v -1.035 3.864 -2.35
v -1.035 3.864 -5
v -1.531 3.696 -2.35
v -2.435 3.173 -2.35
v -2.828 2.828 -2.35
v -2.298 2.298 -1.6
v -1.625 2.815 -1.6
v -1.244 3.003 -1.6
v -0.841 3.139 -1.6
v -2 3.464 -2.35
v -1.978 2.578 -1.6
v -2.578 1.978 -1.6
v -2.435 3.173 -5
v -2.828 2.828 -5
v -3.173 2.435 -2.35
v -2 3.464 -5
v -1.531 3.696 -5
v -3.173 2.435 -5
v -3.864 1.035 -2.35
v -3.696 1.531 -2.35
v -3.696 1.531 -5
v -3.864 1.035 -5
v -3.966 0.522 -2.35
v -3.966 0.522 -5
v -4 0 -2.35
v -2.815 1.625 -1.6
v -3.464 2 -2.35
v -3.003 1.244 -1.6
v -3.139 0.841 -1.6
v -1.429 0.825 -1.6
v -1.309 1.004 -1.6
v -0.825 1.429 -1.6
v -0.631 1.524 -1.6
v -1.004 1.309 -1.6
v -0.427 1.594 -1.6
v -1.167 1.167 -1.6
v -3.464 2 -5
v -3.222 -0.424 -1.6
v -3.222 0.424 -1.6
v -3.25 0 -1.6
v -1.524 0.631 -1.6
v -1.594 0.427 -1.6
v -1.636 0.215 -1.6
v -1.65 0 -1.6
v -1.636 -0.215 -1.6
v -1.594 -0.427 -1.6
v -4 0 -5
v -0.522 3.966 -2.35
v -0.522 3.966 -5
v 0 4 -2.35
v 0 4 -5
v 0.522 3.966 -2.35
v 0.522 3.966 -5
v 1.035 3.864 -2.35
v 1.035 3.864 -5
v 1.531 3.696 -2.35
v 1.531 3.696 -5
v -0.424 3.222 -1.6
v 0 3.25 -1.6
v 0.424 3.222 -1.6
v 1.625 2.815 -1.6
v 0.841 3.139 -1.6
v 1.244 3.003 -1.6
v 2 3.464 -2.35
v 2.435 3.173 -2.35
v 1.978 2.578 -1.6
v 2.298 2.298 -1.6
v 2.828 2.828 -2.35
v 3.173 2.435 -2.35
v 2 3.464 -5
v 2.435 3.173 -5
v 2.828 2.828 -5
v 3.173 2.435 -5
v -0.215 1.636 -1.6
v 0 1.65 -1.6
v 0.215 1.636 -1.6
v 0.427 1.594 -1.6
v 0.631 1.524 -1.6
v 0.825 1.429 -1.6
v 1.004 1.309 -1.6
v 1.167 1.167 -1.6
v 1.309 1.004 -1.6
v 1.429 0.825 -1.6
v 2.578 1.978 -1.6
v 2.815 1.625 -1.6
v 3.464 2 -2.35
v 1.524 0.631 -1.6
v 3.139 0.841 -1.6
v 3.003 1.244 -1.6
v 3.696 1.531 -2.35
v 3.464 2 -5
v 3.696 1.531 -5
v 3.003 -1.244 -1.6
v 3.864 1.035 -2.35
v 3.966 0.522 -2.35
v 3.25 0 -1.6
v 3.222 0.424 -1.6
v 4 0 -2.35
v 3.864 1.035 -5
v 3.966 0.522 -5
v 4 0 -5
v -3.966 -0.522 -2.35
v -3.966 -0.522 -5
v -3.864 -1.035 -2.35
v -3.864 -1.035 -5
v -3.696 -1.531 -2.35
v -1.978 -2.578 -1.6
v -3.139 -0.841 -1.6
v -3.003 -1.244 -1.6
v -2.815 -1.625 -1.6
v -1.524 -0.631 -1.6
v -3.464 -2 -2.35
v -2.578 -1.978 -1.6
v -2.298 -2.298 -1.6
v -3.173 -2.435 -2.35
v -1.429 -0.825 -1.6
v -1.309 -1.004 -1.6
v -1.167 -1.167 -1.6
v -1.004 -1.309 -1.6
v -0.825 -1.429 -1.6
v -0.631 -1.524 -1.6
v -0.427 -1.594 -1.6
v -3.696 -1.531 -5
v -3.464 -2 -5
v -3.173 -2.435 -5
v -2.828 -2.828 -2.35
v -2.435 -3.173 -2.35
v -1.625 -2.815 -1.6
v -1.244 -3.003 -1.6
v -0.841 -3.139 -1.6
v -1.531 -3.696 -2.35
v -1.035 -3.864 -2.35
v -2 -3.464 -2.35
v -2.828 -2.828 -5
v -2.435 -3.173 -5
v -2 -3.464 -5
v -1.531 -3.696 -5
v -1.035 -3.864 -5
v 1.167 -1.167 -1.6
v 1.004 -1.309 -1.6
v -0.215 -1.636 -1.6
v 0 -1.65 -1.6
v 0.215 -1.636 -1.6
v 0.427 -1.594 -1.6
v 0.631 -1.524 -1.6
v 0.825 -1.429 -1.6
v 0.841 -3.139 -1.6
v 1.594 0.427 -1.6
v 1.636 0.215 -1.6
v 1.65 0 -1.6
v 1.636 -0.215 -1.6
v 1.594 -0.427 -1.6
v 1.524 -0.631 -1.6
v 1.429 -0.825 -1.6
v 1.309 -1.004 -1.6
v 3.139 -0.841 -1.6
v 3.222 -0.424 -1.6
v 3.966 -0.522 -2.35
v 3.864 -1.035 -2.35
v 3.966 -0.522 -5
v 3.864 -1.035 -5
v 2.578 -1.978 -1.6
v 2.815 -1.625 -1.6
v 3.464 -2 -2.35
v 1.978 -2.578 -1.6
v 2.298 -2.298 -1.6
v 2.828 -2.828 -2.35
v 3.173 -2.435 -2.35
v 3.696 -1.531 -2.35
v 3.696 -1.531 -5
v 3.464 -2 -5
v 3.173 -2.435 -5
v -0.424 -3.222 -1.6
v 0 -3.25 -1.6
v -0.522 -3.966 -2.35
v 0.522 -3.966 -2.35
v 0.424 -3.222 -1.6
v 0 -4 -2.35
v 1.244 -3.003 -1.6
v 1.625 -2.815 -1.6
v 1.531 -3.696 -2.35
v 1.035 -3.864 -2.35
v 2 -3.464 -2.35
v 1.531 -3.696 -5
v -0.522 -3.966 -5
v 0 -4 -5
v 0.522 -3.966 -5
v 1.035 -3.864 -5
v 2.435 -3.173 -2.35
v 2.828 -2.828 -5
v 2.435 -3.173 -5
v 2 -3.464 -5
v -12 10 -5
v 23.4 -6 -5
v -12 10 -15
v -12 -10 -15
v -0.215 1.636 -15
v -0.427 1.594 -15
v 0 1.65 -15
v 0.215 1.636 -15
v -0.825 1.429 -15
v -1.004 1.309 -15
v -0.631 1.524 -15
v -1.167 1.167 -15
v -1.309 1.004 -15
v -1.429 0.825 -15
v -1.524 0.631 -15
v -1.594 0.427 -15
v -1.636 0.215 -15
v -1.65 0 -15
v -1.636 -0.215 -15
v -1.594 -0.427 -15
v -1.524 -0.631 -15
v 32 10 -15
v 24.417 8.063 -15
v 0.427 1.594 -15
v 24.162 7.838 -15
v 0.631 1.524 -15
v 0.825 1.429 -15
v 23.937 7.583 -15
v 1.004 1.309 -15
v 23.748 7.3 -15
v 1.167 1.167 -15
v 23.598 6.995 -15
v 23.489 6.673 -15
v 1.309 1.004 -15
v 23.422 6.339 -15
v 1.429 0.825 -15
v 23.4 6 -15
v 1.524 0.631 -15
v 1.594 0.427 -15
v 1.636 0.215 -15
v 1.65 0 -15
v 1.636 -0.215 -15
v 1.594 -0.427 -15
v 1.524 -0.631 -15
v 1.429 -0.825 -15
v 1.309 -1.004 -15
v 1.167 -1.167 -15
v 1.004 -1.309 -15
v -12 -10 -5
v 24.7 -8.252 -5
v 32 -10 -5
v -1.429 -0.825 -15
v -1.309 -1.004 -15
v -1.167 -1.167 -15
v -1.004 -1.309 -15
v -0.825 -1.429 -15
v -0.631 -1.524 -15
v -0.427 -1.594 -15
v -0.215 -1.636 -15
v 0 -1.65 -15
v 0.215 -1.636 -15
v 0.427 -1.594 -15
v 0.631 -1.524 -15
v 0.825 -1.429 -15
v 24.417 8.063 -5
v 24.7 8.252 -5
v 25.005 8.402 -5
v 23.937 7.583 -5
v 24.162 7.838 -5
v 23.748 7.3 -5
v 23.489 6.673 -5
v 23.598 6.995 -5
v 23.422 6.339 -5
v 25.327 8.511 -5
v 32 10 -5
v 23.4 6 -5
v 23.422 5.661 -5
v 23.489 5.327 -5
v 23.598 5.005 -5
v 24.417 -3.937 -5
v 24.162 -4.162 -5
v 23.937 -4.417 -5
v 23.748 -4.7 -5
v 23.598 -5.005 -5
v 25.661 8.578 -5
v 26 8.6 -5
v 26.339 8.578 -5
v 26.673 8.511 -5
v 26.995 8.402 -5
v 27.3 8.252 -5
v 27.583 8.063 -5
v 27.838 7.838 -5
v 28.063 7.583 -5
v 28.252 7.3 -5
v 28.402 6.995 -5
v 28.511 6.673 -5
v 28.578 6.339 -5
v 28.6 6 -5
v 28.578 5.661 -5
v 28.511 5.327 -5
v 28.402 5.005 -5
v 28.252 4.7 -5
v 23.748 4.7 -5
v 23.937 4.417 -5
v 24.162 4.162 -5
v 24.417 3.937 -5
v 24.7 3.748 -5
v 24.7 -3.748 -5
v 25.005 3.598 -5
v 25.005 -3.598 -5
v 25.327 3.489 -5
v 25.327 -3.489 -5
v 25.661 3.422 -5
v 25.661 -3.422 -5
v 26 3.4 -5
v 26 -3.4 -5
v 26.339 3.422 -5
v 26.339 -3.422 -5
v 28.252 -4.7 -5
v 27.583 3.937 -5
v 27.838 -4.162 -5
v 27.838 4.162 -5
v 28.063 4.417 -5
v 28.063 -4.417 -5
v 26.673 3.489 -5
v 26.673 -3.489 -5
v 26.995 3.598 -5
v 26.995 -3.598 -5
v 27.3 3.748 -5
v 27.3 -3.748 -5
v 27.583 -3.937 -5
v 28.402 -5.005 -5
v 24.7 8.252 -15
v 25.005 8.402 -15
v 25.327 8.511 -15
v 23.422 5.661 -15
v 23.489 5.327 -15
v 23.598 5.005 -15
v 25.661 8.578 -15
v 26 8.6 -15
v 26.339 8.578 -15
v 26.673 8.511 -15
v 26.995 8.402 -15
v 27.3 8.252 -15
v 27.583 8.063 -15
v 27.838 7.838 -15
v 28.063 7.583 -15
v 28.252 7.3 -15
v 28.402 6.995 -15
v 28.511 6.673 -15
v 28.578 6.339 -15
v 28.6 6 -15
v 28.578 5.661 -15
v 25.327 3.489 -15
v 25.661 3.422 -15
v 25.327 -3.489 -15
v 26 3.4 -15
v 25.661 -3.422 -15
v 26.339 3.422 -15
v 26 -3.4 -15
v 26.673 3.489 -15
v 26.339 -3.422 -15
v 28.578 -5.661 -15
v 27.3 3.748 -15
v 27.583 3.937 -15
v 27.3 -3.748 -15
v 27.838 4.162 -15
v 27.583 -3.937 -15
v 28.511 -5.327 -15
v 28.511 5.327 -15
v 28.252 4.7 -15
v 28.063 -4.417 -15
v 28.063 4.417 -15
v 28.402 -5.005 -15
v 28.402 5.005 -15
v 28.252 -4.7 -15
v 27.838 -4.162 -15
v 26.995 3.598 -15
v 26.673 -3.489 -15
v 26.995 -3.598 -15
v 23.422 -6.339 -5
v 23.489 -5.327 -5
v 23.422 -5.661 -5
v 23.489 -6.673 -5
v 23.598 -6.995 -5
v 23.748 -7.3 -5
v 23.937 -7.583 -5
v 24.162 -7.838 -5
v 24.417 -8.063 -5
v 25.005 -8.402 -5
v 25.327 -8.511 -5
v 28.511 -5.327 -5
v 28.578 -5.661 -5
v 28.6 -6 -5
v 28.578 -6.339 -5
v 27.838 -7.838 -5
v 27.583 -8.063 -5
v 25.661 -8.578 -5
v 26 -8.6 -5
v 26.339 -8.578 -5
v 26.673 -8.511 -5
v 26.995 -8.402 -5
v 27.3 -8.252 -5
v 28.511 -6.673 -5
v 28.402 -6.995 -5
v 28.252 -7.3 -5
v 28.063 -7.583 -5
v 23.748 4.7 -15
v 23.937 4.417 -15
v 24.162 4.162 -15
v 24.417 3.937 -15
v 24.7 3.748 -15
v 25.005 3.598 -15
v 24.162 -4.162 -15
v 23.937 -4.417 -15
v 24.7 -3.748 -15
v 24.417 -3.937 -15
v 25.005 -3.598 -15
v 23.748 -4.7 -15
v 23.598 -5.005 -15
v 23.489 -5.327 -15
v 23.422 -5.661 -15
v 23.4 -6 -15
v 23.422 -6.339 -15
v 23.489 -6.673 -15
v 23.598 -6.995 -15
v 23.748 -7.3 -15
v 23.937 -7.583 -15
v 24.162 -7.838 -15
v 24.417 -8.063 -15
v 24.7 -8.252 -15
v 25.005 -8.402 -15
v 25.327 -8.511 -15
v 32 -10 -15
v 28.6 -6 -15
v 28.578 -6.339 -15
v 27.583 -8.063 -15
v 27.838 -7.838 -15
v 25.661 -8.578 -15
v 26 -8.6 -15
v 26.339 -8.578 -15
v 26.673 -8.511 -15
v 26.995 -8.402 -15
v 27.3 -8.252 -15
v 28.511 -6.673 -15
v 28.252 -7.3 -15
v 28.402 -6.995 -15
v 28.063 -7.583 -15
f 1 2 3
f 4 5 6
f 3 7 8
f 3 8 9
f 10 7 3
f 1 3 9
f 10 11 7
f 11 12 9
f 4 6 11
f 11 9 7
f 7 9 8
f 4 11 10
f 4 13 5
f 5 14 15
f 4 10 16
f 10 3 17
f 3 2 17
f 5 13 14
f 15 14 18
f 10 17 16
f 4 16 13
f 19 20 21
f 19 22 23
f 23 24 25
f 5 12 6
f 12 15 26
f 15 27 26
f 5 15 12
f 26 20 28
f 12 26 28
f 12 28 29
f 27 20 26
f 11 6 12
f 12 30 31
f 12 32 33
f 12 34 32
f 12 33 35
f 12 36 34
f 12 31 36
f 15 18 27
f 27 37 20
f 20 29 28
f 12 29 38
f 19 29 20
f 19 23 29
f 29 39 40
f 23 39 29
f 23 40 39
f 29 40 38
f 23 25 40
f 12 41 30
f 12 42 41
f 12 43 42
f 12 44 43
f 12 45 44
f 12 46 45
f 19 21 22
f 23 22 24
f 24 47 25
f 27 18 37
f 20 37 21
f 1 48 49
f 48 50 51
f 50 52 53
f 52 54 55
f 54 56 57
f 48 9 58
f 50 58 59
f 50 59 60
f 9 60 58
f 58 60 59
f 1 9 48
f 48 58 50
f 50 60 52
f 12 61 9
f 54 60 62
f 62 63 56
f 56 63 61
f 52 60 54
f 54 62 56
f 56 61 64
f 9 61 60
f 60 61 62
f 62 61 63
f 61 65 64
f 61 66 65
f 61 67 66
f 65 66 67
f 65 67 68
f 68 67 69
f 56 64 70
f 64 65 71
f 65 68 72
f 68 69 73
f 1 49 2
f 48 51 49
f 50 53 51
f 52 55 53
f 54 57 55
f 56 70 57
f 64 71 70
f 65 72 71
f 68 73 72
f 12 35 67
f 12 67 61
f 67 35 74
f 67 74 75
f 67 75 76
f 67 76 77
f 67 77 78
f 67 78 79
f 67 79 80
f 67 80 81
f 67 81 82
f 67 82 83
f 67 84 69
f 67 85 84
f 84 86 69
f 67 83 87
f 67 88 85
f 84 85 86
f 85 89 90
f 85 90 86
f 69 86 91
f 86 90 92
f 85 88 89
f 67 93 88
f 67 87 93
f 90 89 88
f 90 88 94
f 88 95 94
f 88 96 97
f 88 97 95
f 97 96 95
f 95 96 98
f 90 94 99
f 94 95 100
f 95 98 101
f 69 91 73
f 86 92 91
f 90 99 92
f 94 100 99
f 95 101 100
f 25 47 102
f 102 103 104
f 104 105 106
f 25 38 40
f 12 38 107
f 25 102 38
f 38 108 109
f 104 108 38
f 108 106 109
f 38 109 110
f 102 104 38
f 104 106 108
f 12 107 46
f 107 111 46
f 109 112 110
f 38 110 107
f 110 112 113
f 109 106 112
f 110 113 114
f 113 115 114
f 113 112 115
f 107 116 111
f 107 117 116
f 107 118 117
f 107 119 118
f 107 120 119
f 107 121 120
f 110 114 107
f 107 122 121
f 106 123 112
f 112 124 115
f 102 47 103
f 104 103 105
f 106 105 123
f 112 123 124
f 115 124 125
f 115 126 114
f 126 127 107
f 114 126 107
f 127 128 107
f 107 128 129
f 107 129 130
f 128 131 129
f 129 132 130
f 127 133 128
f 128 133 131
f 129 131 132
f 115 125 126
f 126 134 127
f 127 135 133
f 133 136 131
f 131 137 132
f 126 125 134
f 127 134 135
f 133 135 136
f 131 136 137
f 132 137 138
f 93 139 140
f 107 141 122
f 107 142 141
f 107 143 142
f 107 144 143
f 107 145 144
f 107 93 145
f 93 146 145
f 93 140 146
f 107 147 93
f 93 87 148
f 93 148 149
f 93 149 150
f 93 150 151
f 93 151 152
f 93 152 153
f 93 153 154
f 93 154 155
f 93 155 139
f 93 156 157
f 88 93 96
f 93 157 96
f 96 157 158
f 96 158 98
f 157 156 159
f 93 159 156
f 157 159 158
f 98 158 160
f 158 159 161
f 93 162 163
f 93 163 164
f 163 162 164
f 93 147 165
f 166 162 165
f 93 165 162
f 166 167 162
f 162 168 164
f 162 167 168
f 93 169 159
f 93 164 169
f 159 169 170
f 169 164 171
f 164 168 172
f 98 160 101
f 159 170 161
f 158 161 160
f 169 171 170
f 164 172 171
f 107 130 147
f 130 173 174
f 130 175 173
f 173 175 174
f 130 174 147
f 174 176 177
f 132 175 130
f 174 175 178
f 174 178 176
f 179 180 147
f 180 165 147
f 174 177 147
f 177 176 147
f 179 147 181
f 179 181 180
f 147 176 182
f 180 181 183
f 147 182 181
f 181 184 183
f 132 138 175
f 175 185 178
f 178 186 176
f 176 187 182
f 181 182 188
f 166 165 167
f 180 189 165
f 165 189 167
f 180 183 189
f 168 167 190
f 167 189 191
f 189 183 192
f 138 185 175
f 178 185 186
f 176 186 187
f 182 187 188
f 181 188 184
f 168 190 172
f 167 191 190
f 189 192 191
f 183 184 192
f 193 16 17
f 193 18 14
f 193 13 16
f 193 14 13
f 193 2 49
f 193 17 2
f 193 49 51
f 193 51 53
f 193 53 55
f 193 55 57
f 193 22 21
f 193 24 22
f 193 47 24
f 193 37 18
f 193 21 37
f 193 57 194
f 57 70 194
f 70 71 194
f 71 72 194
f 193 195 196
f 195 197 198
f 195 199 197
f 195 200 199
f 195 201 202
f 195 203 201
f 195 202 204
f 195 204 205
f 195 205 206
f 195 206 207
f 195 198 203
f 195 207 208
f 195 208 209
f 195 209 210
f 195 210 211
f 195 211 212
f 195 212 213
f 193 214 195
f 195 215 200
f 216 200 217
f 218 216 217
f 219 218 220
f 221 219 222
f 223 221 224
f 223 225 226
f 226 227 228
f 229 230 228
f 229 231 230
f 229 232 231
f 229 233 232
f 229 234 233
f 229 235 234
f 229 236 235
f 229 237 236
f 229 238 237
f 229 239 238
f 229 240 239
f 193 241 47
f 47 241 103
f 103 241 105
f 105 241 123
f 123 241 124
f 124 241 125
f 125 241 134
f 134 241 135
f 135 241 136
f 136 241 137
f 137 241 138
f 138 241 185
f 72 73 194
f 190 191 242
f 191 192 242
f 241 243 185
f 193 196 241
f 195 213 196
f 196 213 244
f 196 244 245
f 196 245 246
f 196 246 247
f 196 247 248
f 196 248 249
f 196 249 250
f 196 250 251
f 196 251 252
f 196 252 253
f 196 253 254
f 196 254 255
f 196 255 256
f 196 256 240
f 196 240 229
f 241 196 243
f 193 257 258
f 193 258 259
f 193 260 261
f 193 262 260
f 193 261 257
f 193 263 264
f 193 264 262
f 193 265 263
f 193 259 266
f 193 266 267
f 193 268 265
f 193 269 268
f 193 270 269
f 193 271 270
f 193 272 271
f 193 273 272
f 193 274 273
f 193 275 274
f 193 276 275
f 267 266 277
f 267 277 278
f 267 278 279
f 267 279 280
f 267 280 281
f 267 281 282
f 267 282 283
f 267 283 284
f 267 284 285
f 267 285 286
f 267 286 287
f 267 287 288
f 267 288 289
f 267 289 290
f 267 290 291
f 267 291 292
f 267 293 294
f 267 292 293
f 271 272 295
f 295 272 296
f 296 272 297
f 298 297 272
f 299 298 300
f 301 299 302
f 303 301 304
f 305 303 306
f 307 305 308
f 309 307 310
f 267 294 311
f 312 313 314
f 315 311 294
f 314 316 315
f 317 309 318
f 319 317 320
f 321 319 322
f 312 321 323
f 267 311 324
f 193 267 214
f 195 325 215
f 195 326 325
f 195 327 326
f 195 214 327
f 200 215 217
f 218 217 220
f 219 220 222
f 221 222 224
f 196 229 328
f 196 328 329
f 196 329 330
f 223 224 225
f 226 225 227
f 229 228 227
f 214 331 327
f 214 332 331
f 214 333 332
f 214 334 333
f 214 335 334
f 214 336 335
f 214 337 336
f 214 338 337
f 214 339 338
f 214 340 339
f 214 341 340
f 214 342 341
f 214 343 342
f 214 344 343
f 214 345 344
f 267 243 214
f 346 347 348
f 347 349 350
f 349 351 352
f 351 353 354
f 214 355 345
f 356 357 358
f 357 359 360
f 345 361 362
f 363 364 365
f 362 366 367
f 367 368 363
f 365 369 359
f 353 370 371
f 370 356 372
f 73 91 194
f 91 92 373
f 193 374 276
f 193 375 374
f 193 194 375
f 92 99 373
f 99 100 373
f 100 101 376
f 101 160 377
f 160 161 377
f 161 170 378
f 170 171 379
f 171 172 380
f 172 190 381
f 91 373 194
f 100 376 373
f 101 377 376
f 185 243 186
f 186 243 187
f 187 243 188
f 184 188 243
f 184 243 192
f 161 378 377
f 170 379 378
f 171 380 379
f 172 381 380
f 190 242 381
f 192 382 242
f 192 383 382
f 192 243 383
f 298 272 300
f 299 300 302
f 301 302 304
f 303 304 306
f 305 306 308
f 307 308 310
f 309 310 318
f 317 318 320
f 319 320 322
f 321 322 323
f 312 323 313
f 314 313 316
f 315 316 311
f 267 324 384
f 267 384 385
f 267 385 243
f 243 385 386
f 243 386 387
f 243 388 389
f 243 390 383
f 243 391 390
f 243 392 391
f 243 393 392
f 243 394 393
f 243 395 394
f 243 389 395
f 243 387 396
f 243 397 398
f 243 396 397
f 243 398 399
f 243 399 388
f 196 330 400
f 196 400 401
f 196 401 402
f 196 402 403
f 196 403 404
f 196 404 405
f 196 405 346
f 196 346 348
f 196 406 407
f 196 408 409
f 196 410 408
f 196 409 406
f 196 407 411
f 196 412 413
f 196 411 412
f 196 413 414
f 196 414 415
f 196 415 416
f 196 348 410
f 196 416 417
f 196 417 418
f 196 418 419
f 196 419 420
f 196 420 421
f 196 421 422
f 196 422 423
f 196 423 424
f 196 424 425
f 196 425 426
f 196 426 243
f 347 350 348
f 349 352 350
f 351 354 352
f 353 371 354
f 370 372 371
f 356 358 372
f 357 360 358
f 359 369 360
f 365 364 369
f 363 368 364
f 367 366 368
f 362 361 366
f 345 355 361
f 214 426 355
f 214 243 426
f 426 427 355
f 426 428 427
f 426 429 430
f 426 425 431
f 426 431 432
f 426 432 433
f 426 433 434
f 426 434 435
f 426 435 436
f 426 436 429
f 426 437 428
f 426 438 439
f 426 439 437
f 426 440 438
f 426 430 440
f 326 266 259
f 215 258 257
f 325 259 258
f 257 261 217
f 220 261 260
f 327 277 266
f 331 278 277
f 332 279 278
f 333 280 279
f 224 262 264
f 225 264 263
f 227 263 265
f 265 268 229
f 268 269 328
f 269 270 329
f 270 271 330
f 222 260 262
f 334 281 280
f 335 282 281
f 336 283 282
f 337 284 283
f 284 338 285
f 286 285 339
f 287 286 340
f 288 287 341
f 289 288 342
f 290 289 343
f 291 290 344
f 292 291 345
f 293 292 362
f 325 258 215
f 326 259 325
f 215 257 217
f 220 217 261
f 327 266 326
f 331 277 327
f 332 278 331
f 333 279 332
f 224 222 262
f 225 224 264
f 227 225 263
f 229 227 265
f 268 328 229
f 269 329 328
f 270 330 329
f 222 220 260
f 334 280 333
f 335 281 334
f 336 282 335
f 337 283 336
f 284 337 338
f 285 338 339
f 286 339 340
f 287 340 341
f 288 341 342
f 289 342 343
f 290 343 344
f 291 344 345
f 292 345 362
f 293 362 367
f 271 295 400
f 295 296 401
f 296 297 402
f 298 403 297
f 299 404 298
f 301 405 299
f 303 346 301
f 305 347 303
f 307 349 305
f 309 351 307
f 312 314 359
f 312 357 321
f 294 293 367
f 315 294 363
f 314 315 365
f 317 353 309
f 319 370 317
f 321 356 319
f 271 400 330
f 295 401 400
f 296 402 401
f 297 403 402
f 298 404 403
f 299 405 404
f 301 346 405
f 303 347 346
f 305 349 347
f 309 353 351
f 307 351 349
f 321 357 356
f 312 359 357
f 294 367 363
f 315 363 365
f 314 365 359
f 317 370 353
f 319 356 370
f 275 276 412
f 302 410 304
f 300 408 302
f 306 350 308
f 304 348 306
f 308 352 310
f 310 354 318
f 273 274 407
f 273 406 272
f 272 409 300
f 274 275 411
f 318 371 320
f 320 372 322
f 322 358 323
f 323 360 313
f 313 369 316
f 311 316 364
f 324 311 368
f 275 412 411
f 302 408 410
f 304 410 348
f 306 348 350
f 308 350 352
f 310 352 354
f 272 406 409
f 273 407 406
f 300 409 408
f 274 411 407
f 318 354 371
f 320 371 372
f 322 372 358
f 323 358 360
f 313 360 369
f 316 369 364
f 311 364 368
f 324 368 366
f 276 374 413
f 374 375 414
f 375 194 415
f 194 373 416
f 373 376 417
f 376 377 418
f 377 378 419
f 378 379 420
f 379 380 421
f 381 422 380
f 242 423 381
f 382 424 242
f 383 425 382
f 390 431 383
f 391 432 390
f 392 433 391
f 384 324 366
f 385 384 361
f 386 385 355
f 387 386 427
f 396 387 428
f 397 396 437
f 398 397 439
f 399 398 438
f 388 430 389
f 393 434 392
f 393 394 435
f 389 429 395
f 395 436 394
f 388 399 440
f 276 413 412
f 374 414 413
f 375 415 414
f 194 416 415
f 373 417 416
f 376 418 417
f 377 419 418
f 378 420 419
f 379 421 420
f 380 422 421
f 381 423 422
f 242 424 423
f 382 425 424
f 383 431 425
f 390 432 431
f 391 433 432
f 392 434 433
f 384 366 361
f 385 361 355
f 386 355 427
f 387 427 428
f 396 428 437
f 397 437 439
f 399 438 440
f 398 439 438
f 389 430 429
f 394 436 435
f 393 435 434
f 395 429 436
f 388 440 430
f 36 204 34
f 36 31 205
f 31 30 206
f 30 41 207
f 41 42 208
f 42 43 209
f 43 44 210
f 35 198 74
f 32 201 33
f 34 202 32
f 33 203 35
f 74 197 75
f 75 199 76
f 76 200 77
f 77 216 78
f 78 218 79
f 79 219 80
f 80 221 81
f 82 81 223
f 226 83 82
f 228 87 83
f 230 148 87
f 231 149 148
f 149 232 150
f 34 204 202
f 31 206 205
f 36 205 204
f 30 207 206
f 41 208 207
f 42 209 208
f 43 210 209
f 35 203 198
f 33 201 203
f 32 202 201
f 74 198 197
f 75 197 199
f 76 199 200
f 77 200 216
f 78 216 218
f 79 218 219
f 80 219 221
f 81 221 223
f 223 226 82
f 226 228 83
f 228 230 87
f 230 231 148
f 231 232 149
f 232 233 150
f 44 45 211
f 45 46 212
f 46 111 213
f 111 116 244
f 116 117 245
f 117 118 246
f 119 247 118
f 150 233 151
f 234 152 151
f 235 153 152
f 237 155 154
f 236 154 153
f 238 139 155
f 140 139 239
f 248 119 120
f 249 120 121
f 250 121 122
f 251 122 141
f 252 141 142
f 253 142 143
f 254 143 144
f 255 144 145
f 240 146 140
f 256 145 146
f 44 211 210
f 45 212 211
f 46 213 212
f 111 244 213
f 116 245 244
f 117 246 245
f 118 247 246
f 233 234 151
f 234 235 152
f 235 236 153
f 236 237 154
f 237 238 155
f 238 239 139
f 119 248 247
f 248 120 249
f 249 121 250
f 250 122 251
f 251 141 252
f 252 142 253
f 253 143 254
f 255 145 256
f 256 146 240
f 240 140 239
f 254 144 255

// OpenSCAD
// Die arm for an M4 set-screw die (2.0 mm socket), for thick cardstock. Tap M4 through.
include <../cad/punch_rig_v3_003.scad>
PART = "arm_print";
DIE_TAP = 3.3;
